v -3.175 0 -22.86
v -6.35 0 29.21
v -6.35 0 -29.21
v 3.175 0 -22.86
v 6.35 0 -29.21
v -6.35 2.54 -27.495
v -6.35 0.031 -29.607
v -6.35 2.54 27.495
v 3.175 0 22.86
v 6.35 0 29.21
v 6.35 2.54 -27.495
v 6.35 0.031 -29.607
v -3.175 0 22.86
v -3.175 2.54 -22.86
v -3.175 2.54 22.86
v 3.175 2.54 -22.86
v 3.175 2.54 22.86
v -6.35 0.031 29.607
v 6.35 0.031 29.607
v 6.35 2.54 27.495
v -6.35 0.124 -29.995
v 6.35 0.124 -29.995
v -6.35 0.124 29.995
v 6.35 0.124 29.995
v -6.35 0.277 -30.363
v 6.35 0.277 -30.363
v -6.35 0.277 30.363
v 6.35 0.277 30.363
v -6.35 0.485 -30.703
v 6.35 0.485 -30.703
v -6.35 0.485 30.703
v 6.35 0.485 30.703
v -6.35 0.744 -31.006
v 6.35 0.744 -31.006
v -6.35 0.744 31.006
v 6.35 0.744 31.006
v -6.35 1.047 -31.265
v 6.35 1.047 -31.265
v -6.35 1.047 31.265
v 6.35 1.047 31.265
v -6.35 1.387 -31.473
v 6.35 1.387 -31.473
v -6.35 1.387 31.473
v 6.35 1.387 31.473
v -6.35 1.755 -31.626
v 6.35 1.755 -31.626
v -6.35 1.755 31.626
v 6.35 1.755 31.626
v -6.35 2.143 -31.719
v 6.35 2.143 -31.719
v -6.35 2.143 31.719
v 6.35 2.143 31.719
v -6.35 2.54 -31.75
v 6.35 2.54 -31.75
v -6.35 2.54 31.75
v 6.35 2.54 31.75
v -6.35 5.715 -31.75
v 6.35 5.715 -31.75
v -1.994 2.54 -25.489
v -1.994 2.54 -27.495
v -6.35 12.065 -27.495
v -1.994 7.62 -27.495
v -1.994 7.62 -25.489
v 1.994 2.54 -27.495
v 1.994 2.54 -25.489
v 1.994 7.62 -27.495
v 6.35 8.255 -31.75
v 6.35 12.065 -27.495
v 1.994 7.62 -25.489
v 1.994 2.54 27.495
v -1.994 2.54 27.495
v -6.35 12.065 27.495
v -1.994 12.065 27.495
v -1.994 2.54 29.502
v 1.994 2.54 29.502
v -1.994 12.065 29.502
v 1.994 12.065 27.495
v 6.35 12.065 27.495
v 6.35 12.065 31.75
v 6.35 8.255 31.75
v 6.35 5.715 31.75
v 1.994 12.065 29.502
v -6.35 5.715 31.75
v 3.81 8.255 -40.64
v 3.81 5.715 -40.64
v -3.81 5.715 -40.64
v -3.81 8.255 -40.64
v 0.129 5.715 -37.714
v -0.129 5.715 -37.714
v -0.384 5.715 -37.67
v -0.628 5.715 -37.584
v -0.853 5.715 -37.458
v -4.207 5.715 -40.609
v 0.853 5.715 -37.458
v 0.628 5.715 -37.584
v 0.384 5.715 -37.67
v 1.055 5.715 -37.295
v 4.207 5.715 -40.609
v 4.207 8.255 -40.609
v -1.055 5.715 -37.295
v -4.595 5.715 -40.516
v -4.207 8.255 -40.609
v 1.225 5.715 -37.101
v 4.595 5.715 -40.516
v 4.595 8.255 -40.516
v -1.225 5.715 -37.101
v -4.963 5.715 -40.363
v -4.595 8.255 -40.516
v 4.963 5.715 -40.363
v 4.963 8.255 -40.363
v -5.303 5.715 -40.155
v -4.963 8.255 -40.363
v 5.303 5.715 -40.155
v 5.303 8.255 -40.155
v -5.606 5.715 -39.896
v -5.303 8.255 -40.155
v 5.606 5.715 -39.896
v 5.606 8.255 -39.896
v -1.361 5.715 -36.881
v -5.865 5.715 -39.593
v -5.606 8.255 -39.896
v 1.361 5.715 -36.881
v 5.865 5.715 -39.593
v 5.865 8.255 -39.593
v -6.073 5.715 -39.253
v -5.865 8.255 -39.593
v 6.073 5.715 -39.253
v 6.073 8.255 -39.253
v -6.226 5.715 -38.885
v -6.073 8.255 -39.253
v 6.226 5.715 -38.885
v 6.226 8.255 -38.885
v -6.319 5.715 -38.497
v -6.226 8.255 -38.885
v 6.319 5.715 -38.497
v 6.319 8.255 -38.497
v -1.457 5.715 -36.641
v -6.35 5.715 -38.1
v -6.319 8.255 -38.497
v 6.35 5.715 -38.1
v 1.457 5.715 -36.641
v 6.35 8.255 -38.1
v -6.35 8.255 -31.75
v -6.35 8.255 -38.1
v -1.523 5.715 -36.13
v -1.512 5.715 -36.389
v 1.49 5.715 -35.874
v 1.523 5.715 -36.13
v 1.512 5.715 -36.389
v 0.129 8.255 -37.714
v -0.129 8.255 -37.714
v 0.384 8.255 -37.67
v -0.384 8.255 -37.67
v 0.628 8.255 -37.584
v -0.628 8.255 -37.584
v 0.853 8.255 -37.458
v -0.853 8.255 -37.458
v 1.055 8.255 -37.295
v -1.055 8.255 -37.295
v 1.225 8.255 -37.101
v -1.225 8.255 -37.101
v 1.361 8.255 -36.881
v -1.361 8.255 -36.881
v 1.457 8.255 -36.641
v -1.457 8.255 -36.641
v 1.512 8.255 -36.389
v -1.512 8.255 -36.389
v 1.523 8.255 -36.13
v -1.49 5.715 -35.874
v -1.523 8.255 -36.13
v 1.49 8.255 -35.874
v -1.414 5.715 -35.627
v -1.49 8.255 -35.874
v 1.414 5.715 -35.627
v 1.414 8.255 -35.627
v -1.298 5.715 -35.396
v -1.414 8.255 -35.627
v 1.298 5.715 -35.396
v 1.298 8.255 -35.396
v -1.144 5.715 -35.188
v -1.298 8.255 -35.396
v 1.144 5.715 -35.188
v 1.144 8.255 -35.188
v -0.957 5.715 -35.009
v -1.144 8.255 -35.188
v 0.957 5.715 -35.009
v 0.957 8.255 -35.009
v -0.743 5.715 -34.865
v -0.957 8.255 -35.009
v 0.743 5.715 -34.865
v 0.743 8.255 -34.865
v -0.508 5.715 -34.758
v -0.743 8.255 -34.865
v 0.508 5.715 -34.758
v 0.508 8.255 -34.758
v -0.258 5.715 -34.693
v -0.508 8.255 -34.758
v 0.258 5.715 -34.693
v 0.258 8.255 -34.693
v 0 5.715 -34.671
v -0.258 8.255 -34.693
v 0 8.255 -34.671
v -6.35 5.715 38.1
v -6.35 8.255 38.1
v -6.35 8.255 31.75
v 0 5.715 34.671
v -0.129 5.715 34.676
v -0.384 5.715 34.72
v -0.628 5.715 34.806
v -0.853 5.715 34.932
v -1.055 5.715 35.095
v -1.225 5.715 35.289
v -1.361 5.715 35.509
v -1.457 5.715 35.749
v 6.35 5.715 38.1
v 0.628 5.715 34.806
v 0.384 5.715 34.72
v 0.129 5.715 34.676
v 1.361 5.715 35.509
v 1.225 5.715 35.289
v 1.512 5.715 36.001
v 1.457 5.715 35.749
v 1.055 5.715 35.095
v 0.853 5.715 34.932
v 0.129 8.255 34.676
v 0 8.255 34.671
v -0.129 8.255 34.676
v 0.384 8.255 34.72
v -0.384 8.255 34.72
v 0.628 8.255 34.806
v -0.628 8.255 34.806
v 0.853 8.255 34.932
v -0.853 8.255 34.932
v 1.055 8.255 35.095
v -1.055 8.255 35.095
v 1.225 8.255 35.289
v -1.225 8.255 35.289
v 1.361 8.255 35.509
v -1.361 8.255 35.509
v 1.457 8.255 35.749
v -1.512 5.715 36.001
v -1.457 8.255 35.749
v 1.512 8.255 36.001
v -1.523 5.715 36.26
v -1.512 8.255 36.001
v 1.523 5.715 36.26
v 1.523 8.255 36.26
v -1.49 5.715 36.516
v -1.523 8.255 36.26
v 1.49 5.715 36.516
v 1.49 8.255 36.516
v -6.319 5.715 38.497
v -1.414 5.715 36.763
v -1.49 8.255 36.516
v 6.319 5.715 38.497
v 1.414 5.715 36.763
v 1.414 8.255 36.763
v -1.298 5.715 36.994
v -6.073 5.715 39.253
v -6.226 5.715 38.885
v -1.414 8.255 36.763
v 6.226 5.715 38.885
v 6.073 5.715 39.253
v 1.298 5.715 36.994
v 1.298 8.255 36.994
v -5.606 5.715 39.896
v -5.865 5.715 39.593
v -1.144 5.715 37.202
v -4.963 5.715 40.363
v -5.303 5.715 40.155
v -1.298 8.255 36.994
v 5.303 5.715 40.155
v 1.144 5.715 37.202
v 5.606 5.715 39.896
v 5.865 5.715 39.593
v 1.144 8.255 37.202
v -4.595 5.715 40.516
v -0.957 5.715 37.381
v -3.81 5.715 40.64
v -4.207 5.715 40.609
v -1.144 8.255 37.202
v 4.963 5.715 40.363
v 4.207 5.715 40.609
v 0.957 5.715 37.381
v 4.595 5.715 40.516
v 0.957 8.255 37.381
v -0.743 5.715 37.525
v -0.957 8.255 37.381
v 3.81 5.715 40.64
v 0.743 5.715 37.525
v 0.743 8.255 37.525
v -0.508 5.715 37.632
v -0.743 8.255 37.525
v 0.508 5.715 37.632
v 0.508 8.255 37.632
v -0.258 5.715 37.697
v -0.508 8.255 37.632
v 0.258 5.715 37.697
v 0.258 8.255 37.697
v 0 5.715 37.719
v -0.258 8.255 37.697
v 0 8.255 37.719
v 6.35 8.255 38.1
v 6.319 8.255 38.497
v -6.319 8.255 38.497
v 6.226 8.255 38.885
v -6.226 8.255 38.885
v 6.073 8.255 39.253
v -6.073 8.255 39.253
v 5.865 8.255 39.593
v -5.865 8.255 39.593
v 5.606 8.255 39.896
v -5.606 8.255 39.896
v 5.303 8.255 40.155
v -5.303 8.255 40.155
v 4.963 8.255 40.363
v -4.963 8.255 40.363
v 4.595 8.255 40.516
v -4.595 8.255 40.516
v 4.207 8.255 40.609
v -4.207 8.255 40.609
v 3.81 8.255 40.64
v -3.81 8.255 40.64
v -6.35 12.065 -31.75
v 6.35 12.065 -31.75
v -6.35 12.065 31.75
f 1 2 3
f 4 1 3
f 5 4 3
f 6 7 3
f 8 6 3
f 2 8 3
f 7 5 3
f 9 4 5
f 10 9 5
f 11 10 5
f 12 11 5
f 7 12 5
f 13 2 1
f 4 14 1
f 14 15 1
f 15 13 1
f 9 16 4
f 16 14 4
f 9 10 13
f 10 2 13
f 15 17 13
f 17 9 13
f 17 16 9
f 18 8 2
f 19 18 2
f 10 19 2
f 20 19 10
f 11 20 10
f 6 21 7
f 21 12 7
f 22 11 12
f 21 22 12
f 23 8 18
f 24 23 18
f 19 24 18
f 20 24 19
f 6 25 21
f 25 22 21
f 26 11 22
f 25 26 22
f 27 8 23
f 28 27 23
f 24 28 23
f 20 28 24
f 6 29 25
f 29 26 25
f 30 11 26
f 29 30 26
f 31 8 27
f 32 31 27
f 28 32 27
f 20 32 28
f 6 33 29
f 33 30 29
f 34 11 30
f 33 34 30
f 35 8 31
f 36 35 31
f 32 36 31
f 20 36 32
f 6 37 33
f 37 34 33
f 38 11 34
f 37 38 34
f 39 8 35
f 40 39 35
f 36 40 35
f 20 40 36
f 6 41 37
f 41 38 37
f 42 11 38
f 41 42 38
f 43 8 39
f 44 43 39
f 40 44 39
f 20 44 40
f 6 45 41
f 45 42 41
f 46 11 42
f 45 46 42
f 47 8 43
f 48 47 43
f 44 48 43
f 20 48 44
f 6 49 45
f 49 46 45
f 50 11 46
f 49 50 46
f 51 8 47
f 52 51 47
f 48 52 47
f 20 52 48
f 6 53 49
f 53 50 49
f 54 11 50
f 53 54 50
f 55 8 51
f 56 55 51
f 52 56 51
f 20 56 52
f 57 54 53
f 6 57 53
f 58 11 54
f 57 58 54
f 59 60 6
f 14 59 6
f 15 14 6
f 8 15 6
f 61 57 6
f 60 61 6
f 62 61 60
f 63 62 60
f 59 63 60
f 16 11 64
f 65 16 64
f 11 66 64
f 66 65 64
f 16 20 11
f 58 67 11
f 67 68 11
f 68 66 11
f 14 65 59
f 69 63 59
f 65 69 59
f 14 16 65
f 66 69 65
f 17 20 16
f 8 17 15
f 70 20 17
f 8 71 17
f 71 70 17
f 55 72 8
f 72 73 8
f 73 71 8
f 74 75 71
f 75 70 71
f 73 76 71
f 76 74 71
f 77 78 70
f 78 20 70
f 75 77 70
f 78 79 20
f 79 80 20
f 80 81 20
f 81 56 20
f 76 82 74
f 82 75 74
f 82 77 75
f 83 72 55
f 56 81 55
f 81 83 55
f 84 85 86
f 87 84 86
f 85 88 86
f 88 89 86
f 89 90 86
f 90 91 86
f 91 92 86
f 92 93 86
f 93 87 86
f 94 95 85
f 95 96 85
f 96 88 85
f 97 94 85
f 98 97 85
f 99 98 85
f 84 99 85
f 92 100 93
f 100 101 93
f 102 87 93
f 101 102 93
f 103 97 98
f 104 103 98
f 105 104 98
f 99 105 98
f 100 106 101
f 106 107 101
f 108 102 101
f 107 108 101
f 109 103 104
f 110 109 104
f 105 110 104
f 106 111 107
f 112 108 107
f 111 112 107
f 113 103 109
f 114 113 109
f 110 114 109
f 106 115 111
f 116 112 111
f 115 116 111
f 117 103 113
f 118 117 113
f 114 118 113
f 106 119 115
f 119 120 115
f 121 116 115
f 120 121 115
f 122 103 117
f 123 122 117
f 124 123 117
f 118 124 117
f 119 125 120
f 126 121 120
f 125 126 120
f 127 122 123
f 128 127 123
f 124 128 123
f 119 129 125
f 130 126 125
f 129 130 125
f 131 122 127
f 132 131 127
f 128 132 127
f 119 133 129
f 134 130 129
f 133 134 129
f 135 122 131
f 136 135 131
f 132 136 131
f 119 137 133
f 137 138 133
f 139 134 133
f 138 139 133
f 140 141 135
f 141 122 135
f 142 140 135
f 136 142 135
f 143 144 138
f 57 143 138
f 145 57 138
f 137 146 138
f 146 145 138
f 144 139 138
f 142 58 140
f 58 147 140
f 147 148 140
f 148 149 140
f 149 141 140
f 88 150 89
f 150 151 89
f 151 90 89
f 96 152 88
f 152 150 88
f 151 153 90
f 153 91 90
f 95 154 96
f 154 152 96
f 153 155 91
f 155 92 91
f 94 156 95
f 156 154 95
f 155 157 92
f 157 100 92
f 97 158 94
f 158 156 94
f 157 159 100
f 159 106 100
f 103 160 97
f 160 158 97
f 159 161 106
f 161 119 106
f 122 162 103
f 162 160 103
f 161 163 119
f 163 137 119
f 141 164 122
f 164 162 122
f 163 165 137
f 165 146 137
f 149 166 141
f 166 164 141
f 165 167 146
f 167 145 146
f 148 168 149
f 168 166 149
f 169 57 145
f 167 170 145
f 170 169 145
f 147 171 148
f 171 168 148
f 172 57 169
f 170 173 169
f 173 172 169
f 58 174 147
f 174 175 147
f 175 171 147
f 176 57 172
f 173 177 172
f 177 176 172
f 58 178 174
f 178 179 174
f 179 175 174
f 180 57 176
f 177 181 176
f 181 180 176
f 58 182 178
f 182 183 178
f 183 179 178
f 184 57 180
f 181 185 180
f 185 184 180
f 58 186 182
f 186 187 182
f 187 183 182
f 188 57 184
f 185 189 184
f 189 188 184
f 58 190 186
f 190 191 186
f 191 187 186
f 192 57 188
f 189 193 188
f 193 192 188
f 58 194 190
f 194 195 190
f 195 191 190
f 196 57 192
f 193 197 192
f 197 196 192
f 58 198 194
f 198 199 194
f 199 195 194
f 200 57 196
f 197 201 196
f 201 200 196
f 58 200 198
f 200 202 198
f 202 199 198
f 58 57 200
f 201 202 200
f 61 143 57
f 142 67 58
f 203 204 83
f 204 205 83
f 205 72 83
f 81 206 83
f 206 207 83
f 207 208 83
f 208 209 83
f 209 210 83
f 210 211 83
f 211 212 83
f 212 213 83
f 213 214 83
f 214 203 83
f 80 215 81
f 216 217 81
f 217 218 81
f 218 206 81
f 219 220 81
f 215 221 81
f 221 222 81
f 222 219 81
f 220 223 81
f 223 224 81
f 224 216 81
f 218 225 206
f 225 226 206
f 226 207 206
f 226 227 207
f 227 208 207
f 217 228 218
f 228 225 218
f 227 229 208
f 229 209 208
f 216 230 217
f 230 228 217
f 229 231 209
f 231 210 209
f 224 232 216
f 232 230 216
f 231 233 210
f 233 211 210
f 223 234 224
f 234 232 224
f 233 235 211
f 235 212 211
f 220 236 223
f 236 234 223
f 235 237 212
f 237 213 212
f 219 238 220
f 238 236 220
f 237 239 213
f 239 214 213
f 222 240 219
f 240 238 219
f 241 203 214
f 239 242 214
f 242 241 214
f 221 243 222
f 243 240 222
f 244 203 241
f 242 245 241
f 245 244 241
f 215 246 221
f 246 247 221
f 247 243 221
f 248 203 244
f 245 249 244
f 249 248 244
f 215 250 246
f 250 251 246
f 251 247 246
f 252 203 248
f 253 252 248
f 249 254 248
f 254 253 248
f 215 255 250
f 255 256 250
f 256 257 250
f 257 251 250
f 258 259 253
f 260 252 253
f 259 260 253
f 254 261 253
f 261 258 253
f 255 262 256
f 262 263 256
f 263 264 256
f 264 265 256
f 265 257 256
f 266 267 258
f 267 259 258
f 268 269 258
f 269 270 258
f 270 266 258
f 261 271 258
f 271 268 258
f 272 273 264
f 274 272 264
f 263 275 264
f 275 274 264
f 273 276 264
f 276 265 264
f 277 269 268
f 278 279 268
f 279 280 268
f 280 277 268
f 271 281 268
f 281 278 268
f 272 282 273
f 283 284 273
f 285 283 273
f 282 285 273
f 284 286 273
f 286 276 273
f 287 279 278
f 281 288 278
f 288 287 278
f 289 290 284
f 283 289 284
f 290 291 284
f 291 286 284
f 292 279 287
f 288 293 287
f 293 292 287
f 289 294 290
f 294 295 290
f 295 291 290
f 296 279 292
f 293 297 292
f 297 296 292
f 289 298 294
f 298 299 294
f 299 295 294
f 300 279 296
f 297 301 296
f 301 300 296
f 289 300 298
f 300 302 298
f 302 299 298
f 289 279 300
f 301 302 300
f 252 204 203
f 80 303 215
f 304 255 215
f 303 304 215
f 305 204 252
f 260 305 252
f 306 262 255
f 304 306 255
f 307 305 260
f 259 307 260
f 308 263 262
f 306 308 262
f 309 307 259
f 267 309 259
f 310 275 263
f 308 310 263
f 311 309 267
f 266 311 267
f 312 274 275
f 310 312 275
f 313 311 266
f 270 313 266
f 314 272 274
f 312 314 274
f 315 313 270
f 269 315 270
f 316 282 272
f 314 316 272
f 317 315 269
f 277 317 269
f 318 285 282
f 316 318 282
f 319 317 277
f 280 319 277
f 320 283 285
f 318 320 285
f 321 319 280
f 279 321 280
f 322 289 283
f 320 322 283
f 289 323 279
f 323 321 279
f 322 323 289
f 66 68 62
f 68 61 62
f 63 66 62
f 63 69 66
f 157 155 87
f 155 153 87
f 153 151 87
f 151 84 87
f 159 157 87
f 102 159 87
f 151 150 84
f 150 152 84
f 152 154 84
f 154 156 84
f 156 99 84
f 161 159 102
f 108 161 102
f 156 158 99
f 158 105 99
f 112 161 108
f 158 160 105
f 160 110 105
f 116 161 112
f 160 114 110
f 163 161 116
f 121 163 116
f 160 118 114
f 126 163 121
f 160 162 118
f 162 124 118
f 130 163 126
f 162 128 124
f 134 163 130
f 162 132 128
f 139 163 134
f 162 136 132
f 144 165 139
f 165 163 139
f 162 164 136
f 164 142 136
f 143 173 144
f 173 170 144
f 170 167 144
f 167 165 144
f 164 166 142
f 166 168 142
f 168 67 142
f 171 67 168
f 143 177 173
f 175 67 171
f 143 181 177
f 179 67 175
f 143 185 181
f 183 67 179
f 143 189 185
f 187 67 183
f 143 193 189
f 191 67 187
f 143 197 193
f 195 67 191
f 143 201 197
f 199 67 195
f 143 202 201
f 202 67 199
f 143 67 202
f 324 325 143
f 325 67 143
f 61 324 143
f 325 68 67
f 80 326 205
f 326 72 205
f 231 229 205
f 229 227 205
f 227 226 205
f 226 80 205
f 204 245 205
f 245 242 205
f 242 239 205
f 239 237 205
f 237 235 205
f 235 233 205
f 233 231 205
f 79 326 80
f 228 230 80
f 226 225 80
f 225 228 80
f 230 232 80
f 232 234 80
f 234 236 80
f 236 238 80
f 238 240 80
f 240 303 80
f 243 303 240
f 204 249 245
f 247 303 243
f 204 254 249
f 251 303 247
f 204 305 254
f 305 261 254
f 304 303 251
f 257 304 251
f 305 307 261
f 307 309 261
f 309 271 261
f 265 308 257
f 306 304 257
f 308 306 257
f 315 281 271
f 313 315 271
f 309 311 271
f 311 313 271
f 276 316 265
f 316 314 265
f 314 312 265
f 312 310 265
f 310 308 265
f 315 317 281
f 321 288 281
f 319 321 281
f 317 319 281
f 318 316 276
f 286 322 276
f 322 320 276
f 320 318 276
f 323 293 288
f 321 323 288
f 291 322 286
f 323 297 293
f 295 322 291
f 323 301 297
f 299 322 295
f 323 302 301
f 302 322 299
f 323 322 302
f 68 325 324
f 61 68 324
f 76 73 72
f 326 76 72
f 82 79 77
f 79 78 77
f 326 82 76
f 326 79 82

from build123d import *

# Parameters (mm, degrees)
SKETCH1_W           = 12.7
SKETCH1_H           = 63.5
SKETCH1_W_2         = 6.35
SKETCH1_H_2         = 45.72
BOSS_EXTRUDE1_DEPTH = 2.54
BOSS_EXTRUDE2_DEPTH = 9.525
SKETCH5_W           = 3.9878
SKETCH5_H           = 2.0066
CUT_EXTRUDE1_DEPTH  = 4.445
SKETCH7_W           = 12.7
SKETCH7_H           = 8.89
SKETCH7_R           = 1.524
BOSS_EXTRUDE4_DEPTH = 2.54
FILLET1_R           = 2.54


with BuildPart() as part:
    # Sketch1 → Boss-Extrude1 (new body)
    with BuildSketch(Plane(origin=(0, 0, 0), x_dir=(1, 0, 0), z_dir=(0, 1, 0))):
        Rectangle(SKETCH1_W, SKETCH1_H)
        Rectangle(SKETCH1_W_2, SKETCH1_H_2, mode=Mode.SUBTRACT)
    extrude(amount=BOSS_EXTRUDE1_DEPTH)

    # Sketch2 → Boss-Extrude2 (add)
    with BuildSketch(Plane(origin=(0, 2.54, 0), x_dir=(1, 0, 0), z_dir=(0, 1, 0))):
        Polygon((-6.35, 31.75), (6.35, 31.75), (6.35, 27.4955), (1.9939, 27.4955), (1.9939, 25.4889), (-1.9939, 25.4889), (-1.9939, 27.4955), (-6.35, 27.4955), align=None)
        Polygon((-6.35, -27.4955), (-6.35, -31.75), (6.35, -31.75), (6.35, -27.4955), (1.9939, -27.4955), (1.9939, -29.5021), (-1.9939, -29.5021), (-1.9939, -27.4955), align=None)
    extrude(amount=BOSS_EXTRUDE2_DEPTH)

    # Sketch5 → Cut-Extrude1 (cut)
    with BuildSketch(Plane(origin=(0, 12.065, 0), x_dir=(1, 0, 0), z_dir=(0, 1, 0))):
        with Locations((0, 26.4922)):
            Rectangle(SKETCH5_W, SKETCH5_H)
    extrude(amount=-CUT_EXTRUDE1_DEPTH, mode=Mode.SUBTRACT)

    # Sketch7 → Boss-Extrude4 (add)
    with BuildSketch(Plane(origin=(0, 8.255, 0), x_dir=(1, 0, 0), z_dir=(0, 1, 0))):
        with Locations((0, 36.195)):
            Rectangle(SKETCH7_W, SKETCH7_H)
        with Locations((0, 36.195)):
            Circle(SKETCH7_R, mode=Mode.SUBTRACT)
        with Locations((0, -36.195)):
            Rectangle(SKETCH7_W, SKETCH7_H)
        with Locations((0, -36.195)):
            Circle(SKETCH7_R, mode=Mode.SUBTRACT)
    extrude(amount=-BOSS_EXTRUDE4_DEPTH)

    # Fillet1
    fillet1_edges = [part.edges().sort_by_distance(p)[0] for p in [
        (6.35, 6.985, 40.64),
        (-6.35, 6.985, 40.64),
        (0, 0, 31.75),
        (0, 0, -31.75),
        (6.35, 6.985, -40.64),
        (-6.35, 6.985, -40.64),
    ]]
    fillet(fillet1_edges, radius=FILLET1_R)


solid = part.part
